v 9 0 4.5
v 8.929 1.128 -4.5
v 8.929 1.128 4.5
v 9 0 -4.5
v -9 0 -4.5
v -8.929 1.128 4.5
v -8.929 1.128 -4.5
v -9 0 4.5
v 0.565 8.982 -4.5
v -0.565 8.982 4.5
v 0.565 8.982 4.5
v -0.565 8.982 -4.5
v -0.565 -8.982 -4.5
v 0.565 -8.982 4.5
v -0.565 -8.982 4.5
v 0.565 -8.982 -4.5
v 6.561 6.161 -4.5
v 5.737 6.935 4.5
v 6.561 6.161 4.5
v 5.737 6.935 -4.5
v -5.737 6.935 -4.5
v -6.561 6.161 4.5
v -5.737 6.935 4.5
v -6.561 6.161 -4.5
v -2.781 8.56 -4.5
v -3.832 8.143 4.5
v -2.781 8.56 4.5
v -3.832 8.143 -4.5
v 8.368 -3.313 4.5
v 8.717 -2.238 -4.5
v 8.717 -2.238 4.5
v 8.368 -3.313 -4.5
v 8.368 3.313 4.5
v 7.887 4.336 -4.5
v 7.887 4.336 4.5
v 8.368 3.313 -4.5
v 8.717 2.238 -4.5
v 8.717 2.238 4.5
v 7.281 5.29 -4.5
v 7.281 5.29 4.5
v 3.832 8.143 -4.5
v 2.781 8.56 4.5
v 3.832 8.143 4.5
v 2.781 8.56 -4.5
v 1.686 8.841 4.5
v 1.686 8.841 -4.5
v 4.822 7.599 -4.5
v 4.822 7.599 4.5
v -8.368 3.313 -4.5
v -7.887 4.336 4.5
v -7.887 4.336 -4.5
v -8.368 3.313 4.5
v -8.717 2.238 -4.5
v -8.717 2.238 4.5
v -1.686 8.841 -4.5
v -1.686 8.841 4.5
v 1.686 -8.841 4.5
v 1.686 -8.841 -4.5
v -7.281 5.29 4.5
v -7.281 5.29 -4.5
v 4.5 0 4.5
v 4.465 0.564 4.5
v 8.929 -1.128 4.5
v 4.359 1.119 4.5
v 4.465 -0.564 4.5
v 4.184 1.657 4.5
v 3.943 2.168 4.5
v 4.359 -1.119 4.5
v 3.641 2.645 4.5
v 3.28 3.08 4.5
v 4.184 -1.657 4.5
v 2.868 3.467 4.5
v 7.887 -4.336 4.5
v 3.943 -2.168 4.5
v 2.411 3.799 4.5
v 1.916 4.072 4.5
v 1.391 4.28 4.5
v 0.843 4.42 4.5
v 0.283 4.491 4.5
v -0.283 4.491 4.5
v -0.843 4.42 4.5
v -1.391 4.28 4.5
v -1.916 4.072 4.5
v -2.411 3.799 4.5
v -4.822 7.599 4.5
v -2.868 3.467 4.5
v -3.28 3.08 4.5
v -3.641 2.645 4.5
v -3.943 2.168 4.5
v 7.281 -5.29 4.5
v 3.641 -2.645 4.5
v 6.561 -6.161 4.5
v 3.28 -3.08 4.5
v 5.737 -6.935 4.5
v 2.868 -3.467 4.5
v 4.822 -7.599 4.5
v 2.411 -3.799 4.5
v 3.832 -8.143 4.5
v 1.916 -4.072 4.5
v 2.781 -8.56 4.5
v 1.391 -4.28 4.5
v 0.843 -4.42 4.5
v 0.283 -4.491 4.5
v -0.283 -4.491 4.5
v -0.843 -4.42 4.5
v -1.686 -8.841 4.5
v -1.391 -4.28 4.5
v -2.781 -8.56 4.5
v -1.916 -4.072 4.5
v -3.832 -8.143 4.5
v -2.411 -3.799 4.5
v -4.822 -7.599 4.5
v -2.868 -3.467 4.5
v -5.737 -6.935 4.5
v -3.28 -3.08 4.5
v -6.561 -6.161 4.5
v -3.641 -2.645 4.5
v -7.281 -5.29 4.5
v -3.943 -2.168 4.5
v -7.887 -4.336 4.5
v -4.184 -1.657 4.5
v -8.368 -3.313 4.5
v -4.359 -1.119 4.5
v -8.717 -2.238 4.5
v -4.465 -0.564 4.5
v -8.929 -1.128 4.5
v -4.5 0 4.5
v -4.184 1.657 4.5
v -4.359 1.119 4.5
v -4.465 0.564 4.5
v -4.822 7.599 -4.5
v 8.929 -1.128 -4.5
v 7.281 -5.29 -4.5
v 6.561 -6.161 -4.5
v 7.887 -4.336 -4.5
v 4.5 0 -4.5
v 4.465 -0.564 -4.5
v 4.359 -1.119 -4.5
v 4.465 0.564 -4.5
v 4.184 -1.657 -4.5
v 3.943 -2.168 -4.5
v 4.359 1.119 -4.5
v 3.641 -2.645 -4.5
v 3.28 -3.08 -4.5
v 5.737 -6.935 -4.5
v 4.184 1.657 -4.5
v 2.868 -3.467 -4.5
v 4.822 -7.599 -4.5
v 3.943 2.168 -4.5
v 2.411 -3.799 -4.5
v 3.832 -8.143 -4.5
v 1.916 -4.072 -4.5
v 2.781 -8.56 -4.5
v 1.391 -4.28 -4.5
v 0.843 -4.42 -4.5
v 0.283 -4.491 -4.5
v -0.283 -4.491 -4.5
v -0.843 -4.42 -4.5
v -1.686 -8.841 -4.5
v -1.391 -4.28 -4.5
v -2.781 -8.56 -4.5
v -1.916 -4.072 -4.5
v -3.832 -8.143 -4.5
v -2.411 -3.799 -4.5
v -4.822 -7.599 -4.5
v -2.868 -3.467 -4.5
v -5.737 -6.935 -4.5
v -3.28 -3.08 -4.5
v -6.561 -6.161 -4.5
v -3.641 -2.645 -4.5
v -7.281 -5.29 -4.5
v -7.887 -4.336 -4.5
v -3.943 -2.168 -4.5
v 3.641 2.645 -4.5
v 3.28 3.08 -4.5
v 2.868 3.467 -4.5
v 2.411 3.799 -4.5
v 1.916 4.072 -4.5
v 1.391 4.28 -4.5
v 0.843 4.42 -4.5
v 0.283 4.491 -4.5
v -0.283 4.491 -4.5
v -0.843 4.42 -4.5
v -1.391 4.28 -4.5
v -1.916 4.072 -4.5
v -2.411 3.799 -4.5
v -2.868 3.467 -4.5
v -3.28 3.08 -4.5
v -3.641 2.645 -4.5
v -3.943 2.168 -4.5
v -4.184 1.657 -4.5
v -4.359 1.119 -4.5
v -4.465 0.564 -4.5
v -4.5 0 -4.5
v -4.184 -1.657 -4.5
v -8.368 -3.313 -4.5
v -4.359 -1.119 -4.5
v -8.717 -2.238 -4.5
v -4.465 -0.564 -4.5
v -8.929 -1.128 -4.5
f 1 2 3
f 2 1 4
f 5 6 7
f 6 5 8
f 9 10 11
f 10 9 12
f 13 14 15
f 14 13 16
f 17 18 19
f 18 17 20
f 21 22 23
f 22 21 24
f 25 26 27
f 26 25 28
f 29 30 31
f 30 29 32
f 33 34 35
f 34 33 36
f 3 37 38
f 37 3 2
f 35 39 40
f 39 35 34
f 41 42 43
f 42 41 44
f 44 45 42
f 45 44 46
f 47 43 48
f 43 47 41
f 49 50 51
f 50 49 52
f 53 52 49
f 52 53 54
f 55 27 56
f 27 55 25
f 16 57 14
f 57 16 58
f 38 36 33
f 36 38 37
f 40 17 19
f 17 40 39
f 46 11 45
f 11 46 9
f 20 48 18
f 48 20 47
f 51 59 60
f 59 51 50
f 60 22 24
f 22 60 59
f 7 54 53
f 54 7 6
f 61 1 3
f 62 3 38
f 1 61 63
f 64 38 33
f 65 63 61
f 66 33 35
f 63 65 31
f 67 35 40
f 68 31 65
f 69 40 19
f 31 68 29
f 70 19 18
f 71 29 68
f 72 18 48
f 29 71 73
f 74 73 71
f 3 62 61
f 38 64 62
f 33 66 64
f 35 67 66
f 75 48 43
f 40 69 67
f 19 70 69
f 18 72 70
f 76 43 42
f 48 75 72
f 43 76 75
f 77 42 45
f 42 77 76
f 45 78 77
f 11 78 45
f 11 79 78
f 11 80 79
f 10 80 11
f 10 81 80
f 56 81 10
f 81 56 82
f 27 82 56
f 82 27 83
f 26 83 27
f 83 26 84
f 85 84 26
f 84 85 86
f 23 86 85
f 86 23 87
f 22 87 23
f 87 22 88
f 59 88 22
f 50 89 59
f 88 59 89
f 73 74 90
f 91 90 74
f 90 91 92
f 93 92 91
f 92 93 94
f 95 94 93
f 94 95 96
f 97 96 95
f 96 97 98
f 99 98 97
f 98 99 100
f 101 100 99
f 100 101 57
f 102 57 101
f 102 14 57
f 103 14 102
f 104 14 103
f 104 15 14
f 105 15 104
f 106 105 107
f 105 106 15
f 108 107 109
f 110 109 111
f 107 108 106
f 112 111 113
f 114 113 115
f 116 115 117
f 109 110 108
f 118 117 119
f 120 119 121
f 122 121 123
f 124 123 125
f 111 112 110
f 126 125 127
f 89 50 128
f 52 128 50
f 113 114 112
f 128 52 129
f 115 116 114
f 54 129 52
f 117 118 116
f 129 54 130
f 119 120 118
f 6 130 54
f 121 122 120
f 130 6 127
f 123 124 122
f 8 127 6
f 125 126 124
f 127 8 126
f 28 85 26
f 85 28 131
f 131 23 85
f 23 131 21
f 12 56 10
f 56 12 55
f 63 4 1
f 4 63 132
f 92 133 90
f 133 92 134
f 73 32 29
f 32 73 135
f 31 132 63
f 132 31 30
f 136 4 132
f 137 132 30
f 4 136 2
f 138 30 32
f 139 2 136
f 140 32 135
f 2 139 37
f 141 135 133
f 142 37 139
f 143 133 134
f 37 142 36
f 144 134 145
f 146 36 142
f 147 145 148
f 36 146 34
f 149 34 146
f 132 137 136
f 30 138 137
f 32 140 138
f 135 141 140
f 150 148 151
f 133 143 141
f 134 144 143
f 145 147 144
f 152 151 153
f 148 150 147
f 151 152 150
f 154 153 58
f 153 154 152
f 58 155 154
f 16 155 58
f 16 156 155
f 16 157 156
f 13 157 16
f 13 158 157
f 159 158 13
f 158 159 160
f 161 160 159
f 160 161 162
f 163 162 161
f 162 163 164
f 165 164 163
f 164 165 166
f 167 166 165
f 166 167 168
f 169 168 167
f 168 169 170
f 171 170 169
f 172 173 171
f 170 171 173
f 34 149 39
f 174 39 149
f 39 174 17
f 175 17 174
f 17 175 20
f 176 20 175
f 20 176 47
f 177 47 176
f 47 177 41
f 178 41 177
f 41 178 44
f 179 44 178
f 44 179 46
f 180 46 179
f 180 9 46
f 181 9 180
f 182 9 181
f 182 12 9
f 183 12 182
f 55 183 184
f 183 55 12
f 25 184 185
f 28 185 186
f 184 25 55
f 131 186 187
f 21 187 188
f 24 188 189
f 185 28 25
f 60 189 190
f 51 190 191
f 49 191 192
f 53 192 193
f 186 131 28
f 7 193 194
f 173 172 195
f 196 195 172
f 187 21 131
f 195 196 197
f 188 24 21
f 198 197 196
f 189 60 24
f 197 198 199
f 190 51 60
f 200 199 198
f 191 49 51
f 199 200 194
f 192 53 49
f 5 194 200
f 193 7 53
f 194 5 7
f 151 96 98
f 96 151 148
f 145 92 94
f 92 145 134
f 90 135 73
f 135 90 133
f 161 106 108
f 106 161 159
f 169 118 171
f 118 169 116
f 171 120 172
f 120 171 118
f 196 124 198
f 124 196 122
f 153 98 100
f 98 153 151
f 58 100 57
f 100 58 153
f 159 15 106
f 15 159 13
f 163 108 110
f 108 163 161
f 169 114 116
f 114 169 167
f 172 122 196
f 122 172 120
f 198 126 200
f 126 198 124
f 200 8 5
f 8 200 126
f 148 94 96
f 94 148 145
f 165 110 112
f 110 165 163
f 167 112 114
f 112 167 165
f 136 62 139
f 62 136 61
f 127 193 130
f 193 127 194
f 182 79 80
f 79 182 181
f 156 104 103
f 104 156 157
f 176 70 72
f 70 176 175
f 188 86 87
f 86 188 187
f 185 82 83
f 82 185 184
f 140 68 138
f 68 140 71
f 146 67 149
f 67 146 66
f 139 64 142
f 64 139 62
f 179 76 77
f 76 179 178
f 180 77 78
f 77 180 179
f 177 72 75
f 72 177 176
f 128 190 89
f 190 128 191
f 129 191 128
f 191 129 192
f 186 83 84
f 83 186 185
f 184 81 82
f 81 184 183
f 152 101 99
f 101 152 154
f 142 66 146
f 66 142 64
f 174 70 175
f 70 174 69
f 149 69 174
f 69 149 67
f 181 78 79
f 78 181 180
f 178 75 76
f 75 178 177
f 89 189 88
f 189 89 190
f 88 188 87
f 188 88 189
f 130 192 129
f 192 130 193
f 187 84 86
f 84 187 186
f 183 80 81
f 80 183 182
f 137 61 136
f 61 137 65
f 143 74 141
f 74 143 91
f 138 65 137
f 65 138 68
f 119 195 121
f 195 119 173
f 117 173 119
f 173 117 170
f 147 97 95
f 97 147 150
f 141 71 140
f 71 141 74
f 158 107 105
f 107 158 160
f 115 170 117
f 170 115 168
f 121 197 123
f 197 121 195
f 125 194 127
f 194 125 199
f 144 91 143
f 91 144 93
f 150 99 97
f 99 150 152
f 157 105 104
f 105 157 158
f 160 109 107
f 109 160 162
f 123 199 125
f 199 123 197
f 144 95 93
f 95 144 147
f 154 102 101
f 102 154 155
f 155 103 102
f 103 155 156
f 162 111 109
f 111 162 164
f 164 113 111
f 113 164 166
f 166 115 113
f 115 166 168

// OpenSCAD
$fn = 50;


difference() {
	union() {
		translate(v = [0, 0, -4.5000000000]) {
			cylinder(h = 9, r = 9.0000000000);
		}
	}
	union() {
		translate(v = [0, 0, -100.0000000000]) {
			cylinder(h = 200, r = 4.5000000000);
		}
	}
}
